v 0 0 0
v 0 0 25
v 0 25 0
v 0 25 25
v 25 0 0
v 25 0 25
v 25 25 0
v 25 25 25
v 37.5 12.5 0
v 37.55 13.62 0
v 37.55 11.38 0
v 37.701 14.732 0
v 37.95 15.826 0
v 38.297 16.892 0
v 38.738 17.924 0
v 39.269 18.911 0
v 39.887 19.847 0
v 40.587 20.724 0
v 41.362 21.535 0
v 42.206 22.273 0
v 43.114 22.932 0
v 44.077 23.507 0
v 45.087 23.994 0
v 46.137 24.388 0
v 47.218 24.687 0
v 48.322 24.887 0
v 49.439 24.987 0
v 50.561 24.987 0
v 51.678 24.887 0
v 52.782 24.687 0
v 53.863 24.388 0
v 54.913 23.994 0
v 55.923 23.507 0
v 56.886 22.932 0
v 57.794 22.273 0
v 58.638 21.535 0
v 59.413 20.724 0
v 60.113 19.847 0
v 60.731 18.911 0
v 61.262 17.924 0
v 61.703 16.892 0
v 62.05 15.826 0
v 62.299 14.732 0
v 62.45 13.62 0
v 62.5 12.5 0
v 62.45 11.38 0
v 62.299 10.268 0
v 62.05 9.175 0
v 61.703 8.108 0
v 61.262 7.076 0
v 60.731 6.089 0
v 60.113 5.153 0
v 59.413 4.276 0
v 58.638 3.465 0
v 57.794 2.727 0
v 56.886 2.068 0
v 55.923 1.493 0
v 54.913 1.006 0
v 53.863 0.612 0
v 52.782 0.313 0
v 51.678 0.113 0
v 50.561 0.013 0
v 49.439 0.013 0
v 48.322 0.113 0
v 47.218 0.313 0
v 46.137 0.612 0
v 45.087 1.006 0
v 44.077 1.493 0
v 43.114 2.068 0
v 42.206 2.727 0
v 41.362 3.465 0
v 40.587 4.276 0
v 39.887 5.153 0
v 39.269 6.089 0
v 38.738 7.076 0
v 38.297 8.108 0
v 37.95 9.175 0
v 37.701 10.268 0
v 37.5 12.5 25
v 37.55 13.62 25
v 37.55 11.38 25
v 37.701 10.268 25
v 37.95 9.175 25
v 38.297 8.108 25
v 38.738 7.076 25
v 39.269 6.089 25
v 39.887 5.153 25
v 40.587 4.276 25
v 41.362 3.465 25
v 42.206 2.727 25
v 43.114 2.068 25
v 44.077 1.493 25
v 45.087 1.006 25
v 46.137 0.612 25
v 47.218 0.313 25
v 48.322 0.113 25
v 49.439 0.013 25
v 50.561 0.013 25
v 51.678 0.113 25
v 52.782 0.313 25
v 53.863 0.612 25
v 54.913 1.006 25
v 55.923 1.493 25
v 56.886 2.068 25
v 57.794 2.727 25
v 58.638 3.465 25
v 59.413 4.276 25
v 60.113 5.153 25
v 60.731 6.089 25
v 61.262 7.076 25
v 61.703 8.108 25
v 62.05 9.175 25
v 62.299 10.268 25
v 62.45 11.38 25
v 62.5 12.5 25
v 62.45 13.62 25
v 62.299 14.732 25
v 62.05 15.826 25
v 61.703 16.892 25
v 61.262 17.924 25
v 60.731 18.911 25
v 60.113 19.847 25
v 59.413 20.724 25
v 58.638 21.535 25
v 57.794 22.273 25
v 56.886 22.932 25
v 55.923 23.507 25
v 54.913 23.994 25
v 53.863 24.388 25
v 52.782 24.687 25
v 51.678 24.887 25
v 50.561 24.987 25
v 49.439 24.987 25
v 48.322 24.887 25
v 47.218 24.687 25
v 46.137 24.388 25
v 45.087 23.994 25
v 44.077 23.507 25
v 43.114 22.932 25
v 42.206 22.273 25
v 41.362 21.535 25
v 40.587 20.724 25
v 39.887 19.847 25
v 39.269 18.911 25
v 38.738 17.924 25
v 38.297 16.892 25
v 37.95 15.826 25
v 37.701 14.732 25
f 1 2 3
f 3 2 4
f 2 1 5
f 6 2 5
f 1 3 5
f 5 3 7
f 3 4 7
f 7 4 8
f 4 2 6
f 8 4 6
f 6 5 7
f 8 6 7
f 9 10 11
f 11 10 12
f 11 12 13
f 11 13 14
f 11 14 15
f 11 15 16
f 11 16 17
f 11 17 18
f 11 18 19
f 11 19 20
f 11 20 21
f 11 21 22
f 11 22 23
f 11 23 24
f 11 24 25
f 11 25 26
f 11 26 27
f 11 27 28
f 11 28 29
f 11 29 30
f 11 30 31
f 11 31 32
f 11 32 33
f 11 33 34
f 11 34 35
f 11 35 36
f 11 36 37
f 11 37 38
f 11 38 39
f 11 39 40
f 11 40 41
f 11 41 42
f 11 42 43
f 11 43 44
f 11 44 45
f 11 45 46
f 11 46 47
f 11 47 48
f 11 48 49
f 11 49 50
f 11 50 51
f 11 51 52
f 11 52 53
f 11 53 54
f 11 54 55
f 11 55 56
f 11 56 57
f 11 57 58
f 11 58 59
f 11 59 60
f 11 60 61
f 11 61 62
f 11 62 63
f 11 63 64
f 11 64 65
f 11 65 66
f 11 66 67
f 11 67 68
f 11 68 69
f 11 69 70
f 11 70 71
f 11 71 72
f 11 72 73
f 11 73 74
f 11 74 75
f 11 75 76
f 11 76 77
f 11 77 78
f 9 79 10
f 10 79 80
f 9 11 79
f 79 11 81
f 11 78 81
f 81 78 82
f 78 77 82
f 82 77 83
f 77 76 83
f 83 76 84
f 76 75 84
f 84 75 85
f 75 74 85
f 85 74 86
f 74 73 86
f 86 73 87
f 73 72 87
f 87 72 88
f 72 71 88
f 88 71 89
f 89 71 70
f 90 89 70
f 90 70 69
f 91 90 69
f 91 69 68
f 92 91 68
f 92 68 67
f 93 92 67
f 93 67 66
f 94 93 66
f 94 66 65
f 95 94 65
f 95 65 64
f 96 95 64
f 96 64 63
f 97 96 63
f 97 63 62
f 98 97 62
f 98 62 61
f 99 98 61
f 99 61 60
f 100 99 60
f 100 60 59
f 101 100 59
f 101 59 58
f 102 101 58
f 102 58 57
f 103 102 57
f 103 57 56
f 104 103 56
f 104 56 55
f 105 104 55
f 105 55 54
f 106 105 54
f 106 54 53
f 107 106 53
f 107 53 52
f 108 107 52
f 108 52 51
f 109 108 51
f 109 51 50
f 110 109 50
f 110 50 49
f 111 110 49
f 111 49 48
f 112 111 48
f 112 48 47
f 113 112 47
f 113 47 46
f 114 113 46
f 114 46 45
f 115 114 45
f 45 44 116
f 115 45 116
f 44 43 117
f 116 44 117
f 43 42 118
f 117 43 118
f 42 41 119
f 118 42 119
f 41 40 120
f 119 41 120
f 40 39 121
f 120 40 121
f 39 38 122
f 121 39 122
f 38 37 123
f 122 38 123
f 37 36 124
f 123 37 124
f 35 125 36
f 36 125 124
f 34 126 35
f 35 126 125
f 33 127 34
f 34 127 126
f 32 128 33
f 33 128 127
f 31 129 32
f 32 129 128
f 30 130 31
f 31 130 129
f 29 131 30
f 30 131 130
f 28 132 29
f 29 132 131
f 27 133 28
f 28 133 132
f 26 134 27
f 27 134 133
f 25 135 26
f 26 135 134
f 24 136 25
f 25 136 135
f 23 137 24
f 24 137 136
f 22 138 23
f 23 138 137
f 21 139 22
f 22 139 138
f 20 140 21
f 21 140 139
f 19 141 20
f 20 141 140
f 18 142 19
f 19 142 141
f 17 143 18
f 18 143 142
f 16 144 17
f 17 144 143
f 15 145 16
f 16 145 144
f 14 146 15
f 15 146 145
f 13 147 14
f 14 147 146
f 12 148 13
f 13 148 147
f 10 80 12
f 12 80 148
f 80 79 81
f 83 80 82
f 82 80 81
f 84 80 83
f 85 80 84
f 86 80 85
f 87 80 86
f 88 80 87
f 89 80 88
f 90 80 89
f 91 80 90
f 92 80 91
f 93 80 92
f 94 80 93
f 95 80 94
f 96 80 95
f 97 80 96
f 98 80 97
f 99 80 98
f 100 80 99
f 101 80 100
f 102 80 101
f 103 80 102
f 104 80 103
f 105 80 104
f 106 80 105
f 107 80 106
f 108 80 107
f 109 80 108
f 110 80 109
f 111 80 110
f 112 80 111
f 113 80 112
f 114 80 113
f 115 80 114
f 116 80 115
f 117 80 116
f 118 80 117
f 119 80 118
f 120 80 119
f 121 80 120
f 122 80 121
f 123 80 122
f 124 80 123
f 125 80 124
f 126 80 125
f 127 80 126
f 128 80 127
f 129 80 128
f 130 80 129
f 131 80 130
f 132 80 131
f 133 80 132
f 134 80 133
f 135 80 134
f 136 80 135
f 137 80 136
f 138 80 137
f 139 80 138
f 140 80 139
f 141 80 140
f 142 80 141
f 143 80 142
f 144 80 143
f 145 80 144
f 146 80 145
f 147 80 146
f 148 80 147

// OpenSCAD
/**
 * Adapted toys - Juguetes adaptados
 * 
 * Objetos simples
 * 
 * Created by DViejo
 * 05/Nov/2014
 * 
 */

cube(25);

translate([50, 12.5, 0]) cylinder(r=12.5, h=25, $fn=70);
